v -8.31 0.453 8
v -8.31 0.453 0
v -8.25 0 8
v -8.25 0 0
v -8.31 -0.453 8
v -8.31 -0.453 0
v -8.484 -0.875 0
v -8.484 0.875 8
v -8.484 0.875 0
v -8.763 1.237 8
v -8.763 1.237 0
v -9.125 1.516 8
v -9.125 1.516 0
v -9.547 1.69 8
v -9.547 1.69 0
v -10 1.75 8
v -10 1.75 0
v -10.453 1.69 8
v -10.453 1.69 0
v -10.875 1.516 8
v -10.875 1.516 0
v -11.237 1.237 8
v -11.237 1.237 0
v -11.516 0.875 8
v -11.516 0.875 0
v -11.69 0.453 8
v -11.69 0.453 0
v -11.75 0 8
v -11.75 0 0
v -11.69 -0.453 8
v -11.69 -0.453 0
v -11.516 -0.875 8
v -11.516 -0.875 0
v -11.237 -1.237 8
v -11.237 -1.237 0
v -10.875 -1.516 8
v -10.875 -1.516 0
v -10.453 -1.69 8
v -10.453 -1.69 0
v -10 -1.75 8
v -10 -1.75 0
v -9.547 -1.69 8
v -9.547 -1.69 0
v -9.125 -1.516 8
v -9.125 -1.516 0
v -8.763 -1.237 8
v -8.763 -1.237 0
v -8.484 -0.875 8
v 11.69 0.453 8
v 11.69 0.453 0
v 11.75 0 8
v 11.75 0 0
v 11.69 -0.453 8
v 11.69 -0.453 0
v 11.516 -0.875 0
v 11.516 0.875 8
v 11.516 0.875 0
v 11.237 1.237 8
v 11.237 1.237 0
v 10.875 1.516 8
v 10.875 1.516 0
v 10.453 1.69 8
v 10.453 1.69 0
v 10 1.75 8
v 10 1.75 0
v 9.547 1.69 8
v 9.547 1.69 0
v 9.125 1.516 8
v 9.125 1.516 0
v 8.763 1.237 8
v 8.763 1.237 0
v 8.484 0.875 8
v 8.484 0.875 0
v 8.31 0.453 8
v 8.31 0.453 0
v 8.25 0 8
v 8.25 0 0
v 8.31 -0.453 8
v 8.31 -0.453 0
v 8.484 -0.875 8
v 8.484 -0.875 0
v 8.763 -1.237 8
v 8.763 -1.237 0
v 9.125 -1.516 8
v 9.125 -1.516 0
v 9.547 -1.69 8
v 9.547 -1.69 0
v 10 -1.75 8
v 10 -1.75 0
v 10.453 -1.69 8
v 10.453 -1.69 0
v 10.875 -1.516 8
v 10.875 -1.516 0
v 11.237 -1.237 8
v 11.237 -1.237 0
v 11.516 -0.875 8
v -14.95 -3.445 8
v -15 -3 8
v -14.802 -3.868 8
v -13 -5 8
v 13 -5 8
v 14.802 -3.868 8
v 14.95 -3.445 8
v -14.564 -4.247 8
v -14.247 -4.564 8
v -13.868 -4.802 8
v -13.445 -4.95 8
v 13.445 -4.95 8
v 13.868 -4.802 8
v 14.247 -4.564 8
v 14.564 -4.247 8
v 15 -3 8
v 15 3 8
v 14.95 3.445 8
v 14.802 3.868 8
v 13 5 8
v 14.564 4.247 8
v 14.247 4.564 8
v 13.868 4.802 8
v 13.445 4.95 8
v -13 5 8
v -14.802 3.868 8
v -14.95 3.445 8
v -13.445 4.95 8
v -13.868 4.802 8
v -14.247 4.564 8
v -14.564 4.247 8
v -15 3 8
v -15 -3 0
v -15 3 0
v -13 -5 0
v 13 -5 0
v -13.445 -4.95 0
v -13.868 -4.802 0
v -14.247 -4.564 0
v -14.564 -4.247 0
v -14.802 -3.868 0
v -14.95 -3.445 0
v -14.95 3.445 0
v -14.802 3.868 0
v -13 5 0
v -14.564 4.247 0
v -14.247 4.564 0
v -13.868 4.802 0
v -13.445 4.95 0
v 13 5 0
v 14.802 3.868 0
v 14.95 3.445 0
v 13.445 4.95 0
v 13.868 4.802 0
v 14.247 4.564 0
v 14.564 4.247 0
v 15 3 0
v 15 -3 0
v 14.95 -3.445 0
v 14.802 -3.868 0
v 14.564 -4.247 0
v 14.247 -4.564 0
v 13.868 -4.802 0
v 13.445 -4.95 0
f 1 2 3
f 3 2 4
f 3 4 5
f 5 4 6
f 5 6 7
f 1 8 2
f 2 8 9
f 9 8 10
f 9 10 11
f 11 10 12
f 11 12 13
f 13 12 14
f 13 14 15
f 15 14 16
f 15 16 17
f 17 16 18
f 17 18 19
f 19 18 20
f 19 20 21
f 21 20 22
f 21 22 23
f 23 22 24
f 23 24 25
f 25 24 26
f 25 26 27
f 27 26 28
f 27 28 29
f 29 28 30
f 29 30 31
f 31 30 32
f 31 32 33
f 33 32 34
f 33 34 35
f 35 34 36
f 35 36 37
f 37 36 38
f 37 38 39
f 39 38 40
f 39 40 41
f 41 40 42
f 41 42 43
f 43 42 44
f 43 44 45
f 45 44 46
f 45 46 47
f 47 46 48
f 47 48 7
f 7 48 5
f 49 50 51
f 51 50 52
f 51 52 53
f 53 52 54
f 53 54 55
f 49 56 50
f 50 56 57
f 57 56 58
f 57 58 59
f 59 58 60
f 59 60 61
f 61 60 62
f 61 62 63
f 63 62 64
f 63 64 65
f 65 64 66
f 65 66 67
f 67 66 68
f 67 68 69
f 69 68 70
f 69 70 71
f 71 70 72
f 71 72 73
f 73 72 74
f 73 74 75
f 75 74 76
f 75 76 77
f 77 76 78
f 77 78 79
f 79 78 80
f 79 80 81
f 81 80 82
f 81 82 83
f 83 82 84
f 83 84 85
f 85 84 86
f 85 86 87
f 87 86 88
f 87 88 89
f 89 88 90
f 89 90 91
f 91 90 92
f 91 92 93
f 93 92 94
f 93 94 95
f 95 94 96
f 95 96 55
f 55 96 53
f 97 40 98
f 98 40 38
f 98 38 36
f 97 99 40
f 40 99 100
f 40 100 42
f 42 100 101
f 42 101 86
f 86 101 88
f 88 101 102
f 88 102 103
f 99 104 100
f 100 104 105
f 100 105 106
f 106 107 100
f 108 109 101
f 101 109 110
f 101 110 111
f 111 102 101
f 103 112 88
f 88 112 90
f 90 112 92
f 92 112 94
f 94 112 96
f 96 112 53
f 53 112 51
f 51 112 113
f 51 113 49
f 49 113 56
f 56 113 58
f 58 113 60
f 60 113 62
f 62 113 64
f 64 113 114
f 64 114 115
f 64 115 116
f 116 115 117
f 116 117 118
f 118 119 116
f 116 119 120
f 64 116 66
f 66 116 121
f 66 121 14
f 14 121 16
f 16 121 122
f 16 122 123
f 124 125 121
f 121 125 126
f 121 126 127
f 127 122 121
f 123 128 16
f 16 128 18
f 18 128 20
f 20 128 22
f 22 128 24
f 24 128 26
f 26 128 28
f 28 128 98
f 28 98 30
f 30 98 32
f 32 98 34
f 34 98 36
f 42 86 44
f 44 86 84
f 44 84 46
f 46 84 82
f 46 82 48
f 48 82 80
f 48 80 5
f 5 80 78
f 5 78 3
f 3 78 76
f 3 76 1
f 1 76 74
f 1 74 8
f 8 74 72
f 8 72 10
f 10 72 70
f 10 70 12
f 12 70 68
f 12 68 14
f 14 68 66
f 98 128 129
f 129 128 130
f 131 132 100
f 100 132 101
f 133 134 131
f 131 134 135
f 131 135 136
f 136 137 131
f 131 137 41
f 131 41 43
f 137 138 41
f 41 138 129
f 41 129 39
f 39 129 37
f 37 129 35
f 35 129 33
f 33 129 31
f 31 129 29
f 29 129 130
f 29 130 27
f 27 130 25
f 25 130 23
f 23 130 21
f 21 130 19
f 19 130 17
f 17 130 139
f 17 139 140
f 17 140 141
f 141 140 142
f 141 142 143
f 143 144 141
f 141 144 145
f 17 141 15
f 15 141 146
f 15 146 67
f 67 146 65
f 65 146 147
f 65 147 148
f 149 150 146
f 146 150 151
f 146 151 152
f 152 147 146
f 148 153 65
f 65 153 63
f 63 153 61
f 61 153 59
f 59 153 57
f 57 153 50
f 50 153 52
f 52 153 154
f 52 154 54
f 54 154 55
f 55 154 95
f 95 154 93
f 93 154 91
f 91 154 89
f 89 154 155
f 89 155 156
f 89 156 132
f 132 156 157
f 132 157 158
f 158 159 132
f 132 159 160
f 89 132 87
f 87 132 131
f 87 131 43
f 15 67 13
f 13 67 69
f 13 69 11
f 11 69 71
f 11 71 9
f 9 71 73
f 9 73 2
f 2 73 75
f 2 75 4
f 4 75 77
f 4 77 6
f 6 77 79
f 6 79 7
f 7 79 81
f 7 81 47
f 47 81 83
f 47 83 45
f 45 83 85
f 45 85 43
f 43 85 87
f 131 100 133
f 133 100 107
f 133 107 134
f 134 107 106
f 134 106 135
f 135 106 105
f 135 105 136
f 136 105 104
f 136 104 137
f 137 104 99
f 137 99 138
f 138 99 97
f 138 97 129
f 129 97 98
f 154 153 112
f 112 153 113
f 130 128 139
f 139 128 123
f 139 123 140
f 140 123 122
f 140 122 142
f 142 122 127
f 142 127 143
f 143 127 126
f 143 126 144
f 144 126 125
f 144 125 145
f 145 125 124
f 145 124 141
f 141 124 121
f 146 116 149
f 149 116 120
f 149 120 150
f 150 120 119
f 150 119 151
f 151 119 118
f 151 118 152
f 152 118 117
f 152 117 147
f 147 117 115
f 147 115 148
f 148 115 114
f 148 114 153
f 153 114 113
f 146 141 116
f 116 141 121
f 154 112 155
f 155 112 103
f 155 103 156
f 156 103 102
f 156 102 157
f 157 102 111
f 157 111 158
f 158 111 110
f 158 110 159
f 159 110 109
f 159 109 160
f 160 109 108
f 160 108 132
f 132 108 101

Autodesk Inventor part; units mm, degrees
ref_plane "YZ Plane" through (0, 0, 0) normal (1, 0, 0) x (0, 1, 0)
ref_plane "XZ Plane" through (0, 0, 0) normal (0, 1, 0) x (-1, 0, 0)
ref_plane "XY Plane" through (0, 0, 0) normal (0, 0, 1) x (1, 0, 0)
sketch "スケッチ1" plane through (0, 0, 0) normal (0, 0, 1) x (1, 0, 0)
  line L0 (15, -5) -> (-15, -5)
  line L1 (-15, -5) -> (-15, 5)
  line L2 (-15, 5) -> (15, 5)
  line L3 (15, 5) -> (15, -5)
  line L4 (15, -5) -> (-15, 5) construction
  line L5 (-15, -5) -> (15, 5) construction
  line L6 (-15, 0) -> (15, 0)
  circle A0 centre (-10, 0) radius 1.75
  circle A1 centre (10, 0) radius 1.75
  point P0 (0, 0)
  point P1 (0, 0)
  dimension "d0" = 30
  dimension "d1" = 10
  dimension "d2" = 3.5
  dimension "d3" = 3.5
  dimension "d4" = 20
  dimension "d5" = 10
extrude "押し出し1" add sketch "スケッチ1" along normal blind 8 contours L0 L1 L6 A0 A1 L3 | L6 A1 A0 L1 L2 L3
fillet "フィレット1" radius 2 4 edges at (-15, 5, 4) (15, 5, 4) (15, -5, 4) (-15, -5, 4)
equation "\"d5\" = 0.5 * d4"
properties part number "gear_enco_plate"
